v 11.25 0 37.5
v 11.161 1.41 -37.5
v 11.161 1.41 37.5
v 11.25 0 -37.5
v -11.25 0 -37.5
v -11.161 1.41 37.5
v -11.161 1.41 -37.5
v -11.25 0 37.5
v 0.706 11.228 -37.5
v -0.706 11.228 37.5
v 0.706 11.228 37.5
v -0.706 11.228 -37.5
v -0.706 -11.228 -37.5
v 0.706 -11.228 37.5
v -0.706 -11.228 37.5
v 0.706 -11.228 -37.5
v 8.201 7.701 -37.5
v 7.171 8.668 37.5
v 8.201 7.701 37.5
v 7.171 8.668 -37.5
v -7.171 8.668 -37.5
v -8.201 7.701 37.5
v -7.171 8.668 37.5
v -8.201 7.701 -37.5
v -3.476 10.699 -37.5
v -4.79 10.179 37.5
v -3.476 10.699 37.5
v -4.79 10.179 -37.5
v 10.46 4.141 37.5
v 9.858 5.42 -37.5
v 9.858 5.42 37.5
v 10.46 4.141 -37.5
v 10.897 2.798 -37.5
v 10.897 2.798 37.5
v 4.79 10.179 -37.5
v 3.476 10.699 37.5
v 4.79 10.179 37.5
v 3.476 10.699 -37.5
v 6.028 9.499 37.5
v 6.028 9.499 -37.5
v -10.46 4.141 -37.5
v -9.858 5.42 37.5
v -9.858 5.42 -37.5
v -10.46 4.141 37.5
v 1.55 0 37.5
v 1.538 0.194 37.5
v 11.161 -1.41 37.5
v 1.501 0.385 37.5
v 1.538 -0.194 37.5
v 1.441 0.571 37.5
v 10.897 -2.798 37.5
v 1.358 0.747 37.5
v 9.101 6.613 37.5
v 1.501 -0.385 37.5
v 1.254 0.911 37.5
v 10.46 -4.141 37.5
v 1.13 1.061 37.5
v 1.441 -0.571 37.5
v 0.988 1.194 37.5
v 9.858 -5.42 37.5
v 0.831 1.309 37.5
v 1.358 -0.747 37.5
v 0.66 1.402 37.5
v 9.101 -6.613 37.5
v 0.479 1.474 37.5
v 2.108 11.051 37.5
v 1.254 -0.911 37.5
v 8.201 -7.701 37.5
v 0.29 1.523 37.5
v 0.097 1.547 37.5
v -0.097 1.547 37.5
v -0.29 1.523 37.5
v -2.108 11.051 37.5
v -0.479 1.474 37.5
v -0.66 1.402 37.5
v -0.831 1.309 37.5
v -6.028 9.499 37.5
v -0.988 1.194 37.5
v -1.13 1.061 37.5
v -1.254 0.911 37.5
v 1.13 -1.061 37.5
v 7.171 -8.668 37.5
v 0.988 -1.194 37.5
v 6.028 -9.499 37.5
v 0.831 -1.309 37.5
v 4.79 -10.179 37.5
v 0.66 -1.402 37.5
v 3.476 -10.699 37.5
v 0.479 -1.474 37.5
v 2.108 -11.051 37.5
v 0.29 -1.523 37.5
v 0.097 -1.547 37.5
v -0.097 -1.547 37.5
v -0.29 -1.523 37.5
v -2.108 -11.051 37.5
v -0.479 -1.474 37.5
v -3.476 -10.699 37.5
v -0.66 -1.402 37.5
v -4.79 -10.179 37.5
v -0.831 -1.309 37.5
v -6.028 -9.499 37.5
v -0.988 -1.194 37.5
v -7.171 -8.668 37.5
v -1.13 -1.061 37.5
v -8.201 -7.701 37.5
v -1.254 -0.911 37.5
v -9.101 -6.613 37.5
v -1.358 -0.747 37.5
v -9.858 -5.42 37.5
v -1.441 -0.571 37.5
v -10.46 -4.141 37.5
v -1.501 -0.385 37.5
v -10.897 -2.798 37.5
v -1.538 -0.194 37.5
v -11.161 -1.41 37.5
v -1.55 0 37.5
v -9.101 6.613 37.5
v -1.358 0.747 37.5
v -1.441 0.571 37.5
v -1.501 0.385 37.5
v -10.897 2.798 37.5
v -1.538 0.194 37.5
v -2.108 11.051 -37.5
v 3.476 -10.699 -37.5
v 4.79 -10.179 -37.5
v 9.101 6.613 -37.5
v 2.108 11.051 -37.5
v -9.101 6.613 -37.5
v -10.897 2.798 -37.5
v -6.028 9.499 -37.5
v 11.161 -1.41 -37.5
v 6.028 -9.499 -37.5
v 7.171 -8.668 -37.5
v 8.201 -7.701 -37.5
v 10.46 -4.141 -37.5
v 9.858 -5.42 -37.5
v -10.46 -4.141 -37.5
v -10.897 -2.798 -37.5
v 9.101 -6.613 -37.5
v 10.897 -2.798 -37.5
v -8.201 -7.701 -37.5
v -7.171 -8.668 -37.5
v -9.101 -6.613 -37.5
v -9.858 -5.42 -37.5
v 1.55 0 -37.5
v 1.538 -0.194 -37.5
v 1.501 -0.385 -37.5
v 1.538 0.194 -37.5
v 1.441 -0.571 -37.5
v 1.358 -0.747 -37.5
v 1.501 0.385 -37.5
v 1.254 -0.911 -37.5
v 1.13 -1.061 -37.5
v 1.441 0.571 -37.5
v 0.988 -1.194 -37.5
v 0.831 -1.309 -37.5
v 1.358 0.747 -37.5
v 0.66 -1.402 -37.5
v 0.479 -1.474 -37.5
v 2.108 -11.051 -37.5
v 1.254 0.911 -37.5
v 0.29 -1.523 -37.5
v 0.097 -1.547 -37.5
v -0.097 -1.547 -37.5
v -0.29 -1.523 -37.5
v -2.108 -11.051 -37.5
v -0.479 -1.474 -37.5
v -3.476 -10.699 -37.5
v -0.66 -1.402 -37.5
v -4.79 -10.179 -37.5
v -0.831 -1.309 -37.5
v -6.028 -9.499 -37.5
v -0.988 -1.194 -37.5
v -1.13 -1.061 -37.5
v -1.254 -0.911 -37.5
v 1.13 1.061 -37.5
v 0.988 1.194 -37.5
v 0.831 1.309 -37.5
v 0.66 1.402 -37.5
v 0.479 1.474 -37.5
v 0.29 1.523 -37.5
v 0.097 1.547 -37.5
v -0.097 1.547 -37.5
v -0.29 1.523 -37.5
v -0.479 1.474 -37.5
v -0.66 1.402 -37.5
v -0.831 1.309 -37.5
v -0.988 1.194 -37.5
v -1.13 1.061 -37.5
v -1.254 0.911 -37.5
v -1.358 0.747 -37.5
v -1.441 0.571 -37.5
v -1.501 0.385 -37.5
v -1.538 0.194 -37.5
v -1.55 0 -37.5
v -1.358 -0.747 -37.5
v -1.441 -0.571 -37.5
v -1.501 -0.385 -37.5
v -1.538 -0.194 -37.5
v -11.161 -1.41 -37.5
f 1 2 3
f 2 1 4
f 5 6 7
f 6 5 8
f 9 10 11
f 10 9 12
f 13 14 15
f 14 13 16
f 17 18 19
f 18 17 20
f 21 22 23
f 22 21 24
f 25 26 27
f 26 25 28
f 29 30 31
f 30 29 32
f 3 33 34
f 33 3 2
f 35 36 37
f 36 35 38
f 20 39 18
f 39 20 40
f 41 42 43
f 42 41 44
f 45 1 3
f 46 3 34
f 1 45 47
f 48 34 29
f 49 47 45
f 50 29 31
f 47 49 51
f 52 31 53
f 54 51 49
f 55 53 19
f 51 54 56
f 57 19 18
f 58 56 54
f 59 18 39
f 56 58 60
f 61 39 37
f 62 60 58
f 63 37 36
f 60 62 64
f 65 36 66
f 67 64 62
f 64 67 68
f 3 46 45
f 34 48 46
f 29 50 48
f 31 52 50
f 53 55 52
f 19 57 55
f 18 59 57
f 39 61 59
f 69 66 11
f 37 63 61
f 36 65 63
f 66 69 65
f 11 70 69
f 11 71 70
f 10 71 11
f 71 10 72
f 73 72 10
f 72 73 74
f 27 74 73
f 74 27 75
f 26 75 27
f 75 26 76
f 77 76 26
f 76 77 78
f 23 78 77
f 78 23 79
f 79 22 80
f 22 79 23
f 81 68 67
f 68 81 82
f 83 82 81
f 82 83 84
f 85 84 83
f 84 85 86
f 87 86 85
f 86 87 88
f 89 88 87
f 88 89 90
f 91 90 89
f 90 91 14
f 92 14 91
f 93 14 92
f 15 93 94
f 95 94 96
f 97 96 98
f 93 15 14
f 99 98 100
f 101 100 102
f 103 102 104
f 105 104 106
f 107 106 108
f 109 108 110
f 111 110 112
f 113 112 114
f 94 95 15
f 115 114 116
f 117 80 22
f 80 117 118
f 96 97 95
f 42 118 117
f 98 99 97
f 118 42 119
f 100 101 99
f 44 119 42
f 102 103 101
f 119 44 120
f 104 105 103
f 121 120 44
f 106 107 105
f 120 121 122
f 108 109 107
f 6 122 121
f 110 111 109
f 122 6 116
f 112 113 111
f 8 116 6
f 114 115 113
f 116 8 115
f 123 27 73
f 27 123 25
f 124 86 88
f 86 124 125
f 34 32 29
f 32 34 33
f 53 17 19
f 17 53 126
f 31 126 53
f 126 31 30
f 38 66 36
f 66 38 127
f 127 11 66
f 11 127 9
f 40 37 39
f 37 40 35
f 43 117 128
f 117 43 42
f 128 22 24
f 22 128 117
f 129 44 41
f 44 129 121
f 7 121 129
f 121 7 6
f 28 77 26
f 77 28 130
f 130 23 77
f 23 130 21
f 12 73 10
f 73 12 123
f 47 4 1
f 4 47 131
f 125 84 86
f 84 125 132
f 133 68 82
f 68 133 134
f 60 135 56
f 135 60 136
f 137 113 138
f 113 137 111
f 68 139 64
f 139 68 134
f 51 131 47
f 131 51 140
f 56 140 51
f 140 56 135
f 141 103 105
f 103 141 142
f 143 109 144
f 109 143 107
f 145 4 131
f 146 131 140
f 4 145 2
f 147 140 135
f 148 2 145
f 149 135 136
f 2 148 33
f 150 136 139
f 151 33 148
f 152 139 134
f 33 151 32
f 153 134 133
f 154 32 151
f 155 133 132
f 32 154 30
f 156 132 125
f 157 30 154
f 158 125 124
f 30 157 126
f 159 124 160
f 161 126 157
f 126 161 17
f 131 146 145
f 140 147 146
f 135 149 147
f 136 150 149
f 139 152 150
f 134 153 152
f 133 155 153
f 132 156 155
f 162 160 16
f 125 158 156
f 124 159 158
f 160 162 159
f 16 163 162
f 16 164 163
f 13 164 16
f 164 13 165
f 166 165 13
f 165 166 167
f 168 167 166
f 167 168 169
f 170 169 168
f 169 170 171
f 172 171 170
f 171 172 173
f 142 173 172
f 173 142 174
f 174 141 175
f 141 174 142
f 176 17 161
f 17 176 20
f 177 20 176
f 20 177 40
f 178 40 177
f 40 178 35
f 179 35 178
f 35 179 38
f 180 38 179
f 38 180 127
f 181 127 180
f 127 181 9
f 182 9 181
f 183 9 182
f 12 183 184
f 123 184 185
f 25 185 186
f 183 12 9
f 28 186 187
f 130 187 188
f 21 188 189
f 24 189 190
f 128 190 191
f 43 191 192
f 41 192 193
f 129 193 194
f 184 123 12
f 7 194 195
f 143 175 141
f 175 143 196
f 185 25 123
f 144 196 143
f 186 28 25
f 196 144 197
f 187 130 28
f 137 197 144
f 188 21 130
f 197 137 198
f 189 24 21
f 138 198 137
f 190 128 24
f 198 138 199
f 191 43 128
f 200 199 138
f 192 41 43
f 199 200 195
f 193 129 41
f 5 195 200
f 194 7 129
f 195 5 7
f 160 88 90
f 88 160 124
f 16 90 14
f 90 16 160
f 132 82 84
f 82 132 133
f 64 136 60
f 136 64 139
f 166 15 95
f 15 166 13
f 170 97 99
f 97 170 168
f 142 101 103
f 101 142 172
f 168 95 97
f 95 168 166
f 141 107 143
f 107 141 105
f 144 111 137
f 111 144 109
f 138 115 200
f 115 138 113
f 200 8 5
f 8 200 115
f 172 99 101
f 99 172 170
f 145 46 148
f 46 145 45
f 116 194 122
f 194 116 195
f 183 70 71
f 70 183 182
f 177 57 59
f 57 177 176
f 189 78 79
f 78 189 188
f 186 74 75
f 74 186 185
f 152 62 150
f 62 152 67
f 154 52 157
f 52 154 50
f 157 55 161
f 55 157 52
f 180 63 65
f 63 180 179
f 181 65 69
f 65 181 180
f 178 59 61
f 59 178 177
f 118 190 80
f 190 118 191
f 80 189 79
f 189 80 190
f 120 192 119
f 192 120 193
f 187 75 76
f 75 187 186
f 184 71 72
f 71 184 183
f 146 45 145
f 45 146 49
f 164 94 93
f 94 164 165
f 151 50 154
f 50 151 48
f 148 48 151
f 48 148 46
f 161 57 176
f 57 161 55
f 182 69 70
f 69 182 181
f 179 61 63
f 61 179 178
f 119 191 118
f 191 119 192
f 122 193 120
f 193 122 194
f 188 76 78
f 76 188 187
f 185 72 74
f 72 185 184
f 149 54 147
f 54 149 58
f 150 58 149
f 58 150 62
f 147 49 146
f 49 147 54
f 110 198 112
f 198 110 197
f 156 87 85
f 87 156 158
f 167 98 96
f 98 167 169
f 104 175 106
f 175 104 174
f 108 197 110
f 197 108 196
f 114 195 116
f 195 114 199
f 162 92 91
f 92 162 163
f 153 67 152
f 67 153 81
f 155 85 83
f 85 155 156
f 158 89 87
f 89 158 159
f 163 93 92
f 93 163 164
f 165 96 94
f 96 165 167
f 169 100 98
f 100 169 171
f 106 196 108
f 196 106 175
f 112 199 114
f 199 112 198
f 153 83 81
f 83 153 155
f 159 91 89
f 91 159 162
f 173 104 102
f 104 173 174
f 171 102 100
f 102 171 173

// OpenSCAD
$fn = 50;


difference() {
	union() {
		translate(v = [0, 0, -37.5000000000]) {
			cylinder(h = 75, r = 11.2500000000);
		}
	}
	union() {
		translate(v = [0, 0, -100.0000000000]) {
			cylinder(h = 200, r = 1.5500000000);
		}
	}
}
